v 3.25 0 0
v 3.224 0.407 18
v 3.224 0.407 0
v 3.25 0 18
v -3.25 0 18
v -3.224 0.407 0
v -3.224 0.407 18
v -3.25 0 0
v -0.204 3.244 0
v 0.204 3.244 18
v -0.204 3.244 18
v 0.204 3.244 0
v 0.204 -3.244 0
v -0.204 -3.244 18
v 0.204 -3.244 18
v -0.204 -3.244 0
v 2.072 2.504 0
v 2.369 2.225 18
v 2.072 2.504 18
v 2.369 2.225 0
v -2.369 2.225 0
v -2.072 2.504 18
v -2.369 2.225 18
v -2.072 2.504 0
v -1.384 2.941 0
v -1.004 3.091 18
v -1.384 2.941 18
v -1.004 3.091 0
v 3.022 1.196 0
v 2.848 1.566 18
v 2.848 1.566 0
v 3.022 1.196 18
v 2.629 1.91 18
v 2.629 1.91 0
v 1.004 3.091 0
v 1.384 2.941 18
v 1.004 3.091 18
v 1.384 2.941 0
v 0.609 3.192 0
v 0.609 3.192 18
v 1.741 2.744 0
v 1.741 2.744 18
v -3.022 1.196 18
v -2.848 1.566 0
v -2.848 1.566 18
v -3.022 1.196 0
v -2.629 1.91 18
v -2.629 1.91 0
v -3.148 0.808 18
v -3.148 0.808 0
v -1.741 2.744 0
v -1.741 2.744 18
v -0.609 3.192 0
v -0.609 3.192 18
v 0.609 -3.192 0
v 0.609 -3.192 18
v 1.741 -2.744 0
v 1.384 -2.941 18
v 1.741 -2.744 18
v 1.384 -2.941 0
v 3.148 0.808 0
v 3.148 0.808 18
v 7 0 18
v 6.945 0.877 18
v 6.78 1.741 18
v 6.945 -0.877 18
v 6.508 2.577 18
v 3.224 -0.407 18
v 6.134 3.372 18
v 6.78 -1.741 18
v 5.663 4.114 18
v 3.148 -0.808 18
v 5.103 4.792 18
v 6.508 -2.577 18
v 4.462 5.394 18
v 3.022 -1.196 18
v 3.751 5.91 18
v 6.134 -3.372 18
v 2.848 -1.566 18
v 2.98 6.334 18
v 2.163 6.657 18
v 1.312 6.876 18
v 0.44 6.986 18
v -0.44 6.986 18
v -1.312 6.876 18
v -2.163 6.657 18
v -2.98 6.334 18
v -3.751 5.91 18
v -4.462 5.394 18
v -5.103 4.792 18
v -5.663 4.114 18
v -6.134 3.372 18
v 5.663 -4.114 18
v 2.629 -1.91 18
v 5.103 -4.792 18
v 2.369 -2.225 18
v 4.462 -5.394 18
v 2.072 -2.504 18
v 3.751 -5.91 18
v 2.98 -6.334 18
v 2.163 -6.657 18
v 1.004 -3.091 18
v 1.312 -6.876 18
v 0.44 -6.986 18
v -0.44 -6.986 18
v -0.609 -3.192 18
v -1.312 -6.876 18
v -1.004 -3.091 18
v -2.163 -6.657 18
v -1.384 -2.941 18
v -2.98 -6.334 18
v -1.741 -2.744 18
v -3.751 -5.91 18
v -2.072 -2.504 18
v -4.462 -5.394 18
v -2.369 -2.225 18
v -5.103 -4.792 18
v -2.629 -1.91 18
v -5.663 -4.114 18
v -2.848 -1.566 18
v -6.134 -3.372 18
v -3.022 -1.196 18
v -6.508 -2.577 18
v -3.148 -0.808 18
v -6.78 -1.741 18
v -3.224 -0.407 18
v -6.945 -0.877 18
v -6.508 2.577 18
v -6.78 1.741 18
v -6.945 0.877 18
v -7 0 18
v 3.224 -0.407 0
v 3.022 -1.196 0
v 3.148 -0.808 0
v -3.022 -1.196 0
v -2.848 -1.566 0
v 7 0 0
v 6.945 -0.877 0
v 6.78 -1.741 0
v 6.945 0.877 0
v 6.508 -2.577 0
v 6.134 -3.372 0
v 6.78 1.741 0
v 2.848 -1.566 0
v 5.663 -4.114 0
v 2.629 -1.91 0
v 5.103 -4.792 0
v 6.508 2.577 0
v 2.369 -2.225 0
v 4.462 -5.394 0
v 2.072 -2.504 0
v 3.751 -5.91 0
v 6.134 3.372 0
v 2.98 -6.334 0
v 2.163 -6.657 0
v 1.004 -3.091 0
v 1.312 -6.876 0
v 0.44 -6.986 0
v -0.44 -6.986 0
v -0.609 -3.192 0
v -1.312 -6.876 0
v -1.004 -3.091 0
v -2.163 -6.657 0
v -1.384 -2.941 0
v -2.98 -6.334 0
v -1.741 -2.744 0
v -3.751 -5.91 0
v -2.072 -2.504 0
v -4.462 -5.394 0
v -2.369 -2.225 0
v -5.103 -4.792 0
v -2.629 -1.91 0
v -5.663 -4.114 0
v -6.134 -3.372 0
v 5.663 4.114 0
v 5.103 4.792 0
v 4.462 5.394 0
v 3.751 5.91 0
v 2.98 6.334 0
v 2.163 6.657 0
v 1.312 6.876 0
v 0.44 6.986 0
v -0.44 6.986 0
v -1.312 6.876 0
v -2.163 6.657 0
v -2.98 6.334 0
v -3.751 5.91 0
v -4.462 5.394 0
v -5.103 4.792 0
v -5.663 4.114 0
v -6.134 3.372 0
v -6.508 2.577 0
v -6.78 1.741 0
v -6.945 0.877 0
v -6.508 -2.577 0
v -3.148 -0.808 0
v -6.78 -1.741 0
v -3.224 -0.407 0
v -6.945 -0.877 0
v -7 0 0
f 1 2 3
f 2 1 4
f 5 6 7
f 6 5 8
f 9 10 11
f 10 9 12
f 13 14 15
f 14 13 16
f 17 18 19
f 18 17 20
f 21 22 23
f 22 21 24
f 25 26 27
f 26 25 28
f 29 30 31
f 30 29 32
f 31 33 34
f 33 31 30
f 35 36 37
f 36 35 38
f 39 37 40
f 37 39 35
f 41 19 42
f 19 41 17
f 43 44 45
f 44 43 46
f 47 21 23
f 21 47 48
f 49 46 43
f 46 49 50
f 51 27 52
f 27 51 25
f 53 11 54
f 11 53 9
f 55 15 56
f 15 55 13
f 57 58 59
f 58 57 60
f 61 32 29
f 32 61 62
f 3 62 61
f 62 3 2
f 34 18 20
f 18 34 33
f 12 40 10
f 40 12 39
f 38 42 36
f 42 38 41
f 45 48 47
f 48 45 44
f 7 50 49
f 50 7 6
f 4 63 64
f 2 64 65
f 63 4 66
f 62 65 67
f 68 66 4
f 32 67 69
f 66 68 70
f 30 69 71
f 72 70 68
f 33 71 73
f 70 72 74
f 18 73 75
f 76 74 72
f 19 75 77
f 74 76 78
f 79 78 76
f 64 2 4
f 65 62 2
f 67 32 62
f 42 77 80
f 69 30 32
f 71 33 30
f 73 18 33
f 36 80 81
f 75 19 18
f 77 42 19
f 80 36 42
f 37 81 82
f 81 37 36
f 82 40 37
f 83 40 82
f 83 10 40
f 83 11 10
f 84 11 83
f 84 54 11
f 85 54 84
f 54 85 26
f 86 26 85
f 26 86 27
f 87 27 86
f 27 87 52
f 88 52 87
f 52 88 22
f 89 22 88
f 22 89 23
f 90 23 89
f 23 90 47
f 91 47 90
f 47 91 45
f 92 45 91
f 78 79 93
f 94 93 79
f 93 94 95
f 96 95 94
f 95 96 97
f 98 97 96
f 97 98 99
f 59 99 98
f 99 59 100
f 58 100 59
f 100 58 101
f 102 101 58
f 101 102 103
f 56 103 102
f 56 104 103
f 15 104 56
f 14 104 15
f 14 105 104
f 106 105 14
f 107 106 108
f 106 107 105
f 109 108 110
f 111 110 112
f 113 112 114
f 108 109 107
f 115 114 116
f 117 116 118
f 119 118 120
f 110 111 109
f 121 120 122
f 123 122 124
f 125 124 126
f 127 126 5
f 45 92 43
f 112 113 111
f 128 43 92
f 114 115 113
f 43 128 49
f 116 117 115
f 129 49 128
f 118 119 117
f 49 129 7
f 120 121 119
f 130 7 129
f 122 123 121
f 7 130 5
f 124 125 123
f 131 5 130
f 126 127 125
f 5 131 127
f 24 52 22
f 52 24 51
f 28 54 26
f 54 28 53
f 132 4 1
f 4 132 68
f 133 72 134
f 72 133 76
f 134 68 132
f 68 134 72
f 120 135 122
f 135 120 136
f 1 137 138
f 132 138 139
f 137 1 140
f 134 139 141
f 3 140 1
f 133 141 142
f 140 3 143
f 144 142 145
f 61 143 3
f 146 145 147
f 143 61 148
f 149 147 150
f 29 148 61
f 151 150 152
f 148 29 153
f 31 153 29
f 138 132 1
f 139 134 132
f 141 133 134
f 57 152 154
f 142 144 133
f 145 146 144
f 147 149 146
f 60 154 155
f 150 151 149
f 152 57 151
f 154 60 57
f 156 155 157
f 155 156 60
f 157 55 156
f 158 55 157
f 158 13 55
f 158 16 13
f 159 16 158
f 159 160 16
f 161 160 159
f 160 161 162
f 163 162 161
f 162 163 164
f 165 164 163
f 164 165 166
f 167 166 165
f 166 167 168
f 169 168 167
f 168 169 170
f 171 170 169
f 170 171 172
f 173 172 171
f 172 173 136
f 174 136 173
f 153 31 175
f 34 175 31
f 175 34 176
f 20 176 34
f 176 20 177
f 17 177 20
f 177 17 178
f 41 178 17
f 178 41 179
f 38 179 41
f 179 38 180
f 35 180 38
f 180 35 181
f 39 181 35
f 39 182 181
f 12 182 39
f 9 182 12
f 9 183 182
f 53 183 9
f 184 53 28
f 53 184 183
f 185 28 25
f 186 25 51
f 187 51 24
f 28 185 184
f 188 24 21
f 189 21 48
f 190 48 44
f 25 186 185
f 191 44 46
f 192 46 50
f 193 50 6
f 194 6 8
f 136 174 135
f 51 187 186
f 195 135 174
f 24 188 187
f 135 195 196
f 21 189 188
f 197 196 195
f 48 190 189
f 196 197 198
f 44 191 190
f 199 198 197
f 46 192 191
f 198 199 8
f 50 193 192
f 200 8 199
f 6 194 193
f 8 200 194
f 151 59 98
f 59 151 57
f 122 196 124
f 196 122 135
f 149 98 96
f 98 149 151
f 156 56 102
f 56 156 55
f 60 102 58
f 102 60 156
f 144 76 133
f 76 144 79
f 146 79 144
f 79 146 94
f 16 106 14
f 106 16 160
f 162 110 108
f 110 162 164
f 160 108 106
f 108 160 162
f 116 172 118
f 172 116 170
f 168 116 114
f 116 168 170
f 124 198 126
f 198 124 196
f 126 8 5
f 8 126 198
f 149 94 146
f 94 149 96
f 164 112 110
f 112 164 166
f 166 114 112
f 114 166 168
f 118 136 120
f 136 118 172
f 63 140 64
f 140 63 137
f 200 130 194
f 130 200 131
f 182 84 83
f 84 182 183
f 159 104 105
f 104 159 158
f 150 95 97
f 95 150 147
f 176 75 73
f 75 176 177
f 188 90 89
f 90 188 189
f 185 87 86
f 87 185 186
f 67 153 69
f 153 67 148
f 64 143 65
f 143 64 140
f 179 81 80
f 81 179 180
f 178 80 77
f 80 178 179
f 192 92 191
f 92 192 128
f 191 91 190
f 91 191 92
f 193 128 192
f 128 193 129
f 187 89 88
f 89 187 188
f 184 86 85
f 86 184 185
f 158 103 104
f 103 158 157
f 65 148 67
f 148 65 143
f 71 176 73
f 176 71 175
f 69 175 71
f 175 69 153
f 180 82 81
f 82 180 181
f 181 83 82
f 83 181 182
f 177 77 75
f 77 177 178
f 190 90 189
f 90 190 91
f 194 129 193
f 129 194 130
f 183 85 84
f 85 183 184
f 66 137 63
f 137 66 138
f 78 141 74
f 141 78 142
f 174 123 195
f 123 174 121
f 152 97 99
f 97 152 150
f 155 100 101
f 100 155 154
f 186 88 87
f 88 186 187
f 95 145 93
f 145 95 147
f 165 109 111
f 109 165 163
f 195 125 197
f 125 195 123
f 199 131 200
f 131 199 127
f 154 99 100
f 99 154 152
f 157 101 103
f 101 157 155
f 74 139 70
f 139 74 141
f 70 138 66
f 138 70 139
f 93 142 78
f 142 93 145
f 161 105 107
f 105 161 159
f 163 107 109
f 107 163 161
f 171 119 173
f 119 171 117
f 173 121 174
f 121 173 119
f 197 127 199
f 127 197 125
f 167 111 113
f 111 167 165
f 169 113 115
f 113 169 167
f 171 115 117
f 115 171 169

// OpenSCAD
$fn = 50;


difference() {
	union() {
		cylinder(h = 18, r = 7.0000000000);
	}
	union() {
		cylinder(h = 18, r = 3.2500000000);
		cylinder(h = 18, r = 3.2500000000);
		cylinder(h = 18, r = 1.8000000000);
		cylinder(h = 18, r = 1.8000000000);
		cylinder(h = 18, r = 1.8000000000);
		cylinder(h = 18, r = 1.8000000000);
		cylinder(h = 18, r = 1.8000000000);
		cylinder(h = 18, r = 1.8000000000);
	}
}
